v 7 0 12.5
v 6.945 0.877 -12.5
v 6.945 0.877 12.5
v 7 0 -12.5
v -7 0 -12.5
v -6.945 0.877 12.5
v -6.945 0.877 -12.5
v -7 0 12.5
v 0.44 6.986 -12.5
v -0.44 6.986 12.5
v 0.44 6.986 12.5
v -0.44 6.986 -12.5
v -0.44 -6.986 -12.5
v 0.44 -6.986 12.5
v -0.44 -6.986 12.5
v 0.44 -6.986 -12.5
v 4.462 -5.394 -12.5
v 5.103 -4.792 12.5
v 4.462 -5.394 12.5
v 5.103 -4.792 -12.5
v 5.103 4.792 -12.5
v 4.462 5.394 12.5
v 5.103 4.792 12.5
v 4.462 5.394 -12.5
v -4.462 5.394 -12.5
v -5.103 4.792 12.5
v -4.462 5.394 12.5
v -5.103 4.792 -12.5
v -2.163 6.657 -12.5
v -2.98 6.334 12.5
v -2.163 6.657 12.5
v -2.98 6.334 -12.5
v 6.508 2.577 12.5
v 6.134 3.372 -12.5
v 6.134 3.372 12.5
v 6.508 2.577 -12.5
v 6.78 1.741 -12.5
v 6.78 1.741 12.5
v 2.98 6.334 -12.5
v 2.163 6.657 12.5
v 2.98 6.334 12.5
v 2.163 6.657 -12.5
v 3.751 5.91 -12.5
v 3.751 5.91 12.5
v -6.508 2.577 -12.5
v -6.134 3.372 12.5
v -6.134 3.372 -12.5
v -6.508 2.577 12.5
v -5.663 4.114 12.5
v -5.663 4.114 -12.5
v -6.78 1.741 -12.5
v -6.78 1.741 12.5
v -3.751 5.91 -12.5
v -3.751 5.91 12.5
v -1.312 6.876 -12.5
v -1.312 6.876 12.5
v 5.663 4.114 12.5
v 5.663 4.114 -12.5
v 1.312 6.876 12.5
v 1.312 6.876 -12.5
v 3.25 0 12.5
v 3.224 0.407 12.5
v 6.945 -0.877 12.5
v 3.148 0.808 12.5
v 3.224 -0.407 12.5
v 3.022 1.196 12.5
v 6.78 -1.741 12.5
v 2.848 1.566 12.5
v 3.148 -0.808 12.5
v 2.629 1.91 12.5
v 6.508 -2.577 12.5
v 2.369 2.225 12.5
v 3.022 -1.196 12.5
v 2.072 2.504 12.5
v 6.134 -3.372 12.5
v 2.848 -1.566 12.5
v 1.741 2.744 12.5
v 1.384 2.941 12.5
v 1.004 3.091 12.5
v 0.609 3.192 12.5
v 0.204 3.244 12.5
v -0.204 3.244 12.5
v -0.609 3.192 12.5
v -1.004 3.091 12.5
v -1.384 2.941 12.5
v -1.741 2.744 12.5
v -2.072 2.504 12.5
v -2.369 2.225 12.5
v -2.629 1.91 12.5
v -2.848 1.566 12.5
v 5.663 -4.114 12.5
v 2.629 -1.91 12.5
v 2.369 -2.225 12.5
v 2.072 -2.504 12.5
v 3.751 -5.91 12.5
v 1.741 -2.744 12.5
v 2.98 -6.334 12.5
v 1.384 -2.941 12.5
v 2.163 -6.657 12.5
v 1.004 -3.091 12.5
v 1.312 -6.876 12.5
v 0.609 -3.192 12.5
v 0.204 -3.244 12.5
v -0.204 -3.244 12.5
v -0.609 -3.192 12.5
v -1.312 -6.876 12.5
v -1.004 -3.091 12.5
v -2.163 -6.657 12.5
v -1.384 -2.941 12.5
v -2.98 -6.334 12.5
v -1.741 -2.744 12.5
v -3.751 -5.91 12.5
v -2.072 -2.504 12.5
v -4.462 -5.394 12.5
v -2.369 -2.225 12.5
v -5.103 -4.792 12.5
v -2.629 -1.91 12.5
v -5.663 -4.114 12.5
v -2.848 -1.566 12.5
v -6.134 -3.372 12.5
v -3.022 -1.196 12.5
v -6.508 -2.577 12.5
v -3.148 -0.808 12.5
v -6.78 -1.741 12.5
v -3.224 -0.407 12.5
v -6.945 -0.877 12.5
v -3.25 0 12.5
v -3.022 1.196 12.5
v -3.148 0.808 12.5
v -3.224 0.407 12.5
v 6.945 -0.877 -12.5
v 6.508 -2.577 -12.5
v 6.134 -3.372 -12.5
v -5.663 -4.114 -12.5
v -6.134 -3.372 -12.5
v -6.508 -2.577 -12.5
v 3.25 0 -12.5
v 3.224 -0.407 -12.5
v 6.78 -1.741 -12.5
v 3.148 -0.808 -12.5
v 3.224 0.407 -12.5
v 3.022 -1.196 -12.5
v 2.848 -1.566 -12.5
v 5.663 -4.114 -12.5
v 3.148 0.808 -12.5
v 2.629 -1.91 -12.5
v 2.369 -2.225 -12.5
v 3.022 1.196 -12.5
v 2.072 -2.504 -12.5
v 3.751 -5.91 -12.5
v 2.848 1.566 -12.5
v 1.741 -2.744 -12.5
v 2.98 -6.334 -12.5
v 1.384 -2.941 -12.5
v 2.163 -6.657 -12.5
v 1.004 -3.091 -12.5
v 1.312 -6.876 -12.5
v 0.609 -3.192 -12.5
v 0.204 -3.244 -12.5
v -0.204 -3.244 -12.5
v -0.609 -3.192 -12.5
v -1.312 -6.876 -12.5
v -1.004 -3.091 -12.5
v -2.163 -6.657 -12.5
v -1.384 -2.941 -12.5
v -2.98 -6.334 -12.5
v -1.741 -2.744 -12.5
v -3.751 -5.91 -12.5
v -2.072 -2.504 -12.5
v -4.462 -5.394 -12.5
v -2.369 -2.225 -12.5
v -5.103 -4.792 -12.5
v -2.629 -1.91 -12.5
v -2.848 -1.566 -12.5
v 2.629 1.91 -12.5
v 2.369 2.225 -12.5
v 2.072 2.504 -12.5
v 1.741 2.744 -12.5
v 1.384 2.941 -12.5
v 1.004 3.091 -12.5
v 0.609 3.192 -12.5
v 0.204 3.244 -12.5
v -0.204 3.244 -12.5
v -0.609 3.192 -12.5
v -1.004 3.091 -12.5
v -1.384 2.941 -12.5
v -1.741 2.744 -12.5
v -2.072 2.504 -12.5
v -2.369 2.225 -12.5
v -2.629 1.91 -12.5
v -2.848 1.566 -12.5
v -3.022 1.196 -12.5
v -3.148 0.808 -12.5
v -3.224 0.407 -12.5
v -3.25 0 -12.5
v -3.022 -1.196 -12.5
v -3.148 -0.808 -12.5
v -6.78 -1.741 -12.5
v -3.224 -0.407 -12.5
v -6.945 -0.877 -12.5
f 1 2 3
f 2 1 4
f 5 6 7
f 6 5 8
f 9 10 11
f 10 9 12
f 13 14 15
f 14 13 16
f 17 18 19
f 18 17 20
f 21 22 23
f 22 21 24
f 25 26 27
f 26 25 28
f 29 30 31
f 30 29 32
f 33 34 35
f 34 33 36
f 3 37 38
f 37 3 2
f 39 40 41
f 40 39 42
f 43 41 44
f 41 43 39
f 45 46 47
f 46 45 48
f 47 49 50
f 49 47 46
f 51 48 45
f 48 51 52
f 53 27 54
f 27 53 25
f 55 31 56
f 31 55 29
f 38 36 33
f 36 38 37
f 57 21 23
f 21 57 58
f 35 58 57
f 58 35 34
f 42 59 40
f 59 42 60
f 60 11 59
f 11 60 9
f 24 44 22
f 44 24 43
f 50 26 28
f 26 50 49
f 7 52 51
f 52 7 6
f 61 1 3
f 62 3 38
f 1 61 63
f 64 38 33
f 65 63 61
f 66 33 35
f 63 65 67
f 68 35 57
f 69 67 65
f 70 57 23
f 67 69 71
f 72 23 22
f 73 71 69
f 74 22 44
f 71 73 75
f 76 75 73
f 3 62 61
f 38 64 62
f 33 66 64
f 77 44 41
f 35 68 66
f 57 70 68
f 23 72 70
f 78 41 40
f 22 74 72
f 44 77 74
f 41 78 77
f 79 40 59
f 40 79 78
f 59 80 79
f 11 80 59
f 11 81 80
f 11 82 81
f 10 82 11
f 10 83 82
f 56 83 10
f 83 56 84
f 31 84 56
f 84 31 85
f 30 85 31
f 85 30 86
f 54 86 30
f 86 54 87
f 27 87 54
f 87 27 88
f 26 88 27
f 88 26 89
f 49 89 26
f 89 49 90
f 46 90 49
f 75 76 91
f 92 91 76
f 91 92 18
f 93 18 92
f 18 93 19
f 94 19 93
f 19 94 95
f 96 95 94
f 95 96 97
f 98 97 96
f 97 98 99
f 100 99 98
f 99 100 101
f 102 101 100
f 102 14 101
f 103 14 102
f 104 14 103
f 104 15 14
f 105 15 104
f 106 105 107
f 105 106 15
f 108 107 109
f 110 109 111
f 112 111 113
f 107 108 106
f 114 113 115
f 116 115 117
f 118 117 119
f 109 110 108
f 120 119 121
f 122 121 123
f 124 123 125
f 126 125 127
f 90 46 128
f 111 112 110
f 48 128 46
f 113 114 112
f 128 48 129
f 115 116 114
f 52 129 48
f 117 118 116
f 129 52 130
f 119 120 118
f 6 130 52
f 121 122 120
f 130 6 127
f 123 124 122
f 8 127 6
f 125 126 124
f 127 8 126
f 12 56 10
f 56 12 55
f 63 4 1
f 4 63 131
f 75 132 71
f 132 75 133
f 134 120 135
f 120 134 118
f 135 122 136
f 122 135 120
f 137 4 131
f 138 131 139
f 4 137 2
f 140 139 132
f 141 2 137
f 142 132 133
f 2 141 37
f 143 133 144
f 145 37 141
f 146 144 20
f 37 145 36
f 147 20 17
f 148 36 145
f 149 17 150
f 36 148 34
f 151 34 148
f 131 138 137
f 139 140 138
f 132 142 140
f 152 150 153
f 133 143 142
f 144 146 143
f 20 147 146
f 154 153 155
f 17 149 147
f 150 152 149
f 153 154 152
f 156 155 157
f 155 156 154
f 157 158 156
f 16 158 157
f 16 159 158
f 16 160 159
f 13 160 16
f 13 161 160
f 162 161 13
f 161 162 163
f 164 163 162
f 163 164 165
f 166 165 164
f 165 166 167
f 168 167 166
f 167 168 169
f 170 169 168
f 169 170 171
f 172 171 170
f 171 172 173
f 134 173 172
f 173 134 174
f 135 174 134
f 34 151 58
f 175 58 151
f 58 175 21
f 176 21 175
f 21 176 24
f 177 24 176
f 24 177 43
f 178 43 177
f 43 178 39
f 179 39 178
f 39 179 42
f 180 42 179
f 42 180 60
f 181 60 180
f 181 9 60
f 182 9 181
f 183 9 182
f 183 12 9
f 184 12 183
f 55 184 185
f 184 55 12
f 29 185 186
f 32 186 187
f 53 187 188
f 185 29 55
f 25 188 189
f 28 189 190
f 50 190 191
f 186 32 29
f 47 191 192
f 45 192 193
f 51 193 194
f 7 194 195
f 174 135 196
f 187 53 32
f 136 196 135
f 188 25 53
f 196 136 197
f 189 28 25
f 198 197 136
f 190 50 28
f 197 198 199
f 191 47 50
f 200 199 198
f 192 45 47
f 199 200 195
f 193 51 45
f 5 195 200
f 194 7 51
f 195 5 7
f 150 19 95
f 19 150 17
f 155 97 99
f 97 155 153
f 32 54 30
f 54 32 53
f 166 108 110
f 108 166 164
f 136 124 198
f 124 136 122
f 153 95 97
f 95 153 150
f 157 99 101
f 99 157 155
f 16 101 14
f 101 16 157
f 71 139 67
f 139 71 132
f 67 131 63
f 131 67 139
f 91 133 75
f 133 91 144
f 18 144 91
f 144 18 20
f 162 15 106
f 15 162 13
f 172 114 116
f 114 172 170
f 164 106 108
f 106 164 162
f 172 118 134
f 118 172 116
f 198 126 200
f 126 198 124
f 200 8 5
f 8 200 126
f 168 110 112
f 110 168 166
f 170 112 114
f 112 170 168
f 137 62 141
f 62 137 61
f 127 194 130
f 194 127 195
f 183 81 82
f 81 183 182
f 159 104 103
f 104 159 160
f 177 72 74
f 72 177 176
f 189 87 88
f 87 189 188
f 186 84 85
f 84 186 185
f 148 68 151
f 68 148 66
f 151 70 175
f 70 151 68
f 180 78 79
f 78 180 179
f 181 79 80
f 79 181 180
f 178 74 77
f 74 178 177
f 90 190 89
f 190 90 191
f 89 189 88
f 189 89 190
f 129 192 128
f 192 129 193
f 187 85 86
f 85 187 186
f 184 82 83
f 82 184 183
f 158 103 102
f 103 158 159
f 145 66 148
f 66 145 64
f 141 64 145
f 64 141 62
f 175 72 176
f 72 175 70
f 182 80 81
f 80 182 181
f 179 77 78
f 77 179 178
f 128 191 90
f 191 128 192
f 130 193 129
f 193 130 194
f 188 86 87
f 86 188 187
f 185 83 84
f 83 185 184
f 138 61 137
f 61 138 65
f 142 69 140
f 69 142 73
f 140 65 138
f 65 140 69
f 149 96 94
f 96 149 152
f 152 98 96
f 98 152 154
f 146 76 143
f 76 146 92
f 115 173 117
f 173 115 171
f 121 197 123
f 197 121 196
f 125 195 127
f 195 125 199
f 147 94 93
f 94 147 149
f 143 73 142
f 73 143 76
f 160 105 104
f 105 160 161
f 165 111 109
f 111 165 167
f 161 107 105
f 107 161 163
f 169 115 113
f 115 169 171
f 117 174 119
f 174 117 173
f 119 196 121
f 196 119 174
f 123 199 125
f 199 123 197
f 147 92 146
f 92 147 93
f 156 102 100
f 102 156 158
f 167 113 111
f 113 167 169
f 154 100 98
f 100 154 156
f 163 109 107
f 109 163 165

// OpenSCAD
$fn = 50;


difference() {
	union() {
		translate(v = [0, 0, -12.5000000000]) {
			cylinder(h = 25, r = 7.0000000000);
		}
	}
	union() {
		translate(v = [0, 0, -100.0000000000]) {
			cylinder(h = 200, r = 3.2500000000);
		}
	}
}
